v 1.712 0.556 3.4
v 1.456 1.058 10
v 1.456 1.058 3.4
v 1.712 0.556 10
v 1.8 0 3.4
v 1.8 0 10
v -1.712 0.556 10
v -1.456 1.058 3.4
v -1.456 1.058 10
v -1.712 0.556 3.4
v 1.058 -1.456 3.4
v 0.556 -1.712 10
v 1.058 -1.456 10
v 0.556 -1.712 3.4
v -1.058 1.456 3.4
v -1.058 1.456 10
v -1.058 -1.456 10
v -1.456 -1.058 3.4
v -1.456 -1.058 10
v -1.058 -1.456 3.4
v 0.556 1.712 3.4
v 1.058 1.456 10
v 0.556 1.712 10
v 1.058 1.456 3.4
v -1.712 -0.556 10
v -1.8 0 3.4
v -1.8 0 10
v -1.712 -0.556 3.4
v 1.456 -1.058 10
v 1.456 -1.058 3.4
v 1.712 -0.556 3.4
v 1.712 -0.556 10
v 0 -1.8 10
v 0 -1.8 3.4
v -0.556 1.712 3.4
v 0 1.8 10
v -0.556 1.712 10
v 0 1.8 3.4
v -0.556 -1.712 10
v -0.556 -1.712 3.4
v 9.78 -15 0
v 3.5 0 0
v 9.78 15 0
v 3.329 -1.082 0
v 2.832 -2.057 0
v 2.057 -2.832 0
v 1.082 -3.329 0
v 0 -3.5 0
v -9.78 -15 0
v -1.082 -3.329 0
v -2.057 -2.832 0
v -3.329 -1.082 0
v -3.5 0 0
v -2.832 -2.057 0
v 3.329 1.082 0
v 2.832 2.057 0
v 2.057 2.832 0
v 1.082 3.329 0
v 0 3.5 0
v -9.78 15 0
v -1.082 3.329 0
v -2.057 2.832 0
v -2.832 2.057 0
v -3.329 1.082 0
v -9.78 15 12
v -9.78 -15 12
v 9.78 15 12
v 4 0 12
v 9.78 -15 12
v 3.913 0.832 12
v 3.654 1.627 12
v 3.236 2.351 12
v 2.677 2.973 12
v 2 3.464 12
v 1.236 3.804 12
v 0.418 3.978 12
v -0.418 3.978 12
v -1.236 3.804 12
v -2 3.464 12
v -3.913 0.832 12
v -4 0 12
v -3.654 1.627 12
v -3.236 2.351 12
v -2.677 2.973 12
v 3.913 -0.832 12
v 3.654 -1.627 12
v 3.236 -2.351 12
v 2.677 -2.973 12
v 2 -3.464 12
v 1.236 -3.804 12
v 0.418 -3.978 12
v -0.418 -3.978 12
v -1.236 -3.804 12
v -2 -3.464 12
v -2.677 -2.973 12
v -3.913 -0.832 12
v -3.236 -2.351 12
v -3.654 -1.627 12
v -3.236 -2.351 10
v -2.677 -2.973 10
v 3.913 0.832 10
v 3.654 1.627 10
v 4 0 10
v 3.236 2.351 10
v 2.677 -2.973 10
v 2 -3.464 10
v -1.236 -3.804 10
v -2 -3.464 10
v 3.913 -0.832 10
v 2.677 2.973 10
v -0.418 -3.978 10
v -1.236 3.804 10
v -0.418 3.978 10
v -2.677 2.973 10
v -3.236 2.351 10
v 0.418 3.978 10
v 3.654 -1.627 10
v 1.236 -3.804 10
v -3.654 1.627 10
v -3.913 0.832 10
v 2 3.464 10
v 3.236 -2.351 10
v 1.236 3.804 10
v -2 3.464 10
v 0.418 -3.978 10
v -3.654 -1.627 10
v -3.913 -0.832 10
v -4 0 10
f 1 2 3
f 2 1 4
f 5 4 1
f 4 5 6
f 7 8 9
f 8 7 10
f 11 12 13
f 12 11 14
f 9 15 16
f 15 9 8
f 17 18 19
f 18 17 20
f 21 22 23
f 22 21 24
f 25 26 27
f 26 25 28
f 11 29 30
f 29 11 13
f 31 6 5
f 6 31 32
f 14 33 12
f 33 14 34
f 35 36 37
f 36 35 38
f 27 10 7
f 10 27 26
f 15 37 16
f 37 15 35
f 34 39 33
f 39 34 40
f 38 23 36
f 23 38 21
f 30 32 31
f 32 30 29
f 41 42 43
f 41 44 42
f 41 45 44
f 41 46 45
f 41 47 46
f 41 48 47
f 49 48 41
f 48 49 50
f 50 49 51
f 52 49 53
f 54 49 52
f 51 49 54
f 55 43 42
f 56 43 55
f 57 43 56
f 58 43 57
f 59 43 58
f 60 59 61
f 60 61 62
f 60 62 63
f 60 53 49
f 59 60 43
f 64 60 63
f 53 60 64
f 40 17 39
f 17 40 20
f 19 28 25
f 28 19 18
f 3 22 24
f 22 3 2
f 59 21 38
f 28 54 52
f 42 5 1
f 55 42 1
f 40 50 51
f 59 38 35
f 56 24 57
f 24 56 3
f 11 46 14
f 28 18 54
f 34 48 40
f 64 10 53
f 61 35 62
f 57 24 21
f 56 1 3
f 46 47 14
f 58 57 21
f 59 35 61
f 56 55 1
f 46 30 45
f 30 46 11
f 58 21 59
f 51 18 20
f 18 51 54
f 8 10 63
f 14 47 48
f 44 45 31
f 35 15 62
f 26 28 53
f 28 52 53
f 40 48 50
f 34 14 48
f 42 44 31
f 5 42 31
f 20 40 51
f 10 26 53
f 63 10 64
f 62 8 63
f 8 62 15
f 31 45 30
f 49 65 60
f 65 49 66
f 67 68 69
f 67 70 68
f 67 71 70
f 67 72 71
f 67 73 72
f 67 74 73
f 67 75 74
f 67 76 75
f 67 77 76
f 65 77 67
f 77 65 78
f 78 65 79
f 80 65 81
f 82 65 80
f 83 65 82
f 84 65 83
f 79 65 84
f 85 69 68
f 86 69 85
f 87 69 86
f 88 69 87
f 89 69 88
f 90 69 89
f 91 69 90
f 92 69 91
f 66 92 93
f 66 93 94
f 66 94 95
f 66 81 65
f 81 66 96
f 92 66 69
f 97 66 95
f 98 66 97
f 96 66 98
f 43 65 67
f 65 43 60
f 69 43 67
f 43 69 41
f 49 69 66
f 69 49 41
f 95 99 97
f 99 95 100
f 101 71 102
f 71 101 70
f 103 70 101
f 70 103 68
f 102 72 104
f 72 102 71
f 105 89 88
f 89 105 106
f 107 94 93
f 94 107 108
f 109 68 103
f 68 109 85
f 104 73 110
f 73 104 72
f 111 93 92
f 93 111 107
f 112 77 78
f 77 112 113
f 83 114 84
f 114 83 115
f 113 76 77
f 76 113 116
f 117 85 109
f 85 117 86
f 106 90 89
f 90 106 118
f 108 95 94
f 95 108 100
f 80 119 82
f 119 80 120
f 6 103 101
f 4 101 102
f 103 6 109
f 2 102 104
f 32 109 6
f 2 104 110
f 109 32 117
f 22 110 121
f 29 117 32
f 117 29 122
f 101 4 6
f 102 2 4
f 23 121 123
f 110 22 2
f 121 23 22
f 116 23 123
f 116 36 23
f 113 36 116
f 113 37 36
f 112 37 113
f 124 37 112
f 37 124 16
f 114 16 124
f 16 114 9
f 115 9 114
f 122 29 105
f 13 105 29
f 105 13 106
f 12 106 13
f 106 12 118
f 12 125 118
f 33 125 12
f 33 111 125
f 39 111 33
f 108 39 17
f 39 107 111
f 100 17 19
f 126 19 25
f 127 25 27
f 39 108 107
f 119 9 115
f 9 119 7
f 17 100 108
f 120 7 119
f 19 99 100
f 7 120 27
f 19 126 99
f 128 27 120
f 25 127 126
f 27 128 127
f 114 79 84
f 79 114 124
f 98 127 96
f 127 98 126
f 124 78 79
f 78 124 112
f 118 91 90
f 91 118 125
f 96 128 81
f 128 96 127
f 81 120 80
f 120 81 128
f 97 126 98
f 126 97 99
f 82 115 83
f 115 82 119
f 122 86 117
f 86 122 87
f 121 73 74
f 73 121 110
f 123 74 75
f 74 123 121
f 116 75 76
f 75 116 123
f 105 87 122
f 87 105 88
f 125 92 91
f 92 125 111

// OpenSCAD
module screw_hole() {
    large = 100;
    cylinder(h=large, d=3.6, $fn=20);
    cylinder(h=3.4, d1=7, d2=3.6, $fn=20);
}

h = 12;

difference() {
    linear_extrude(h) square([9.78*2,30], center=true);
    screw_hole();
    
    translate([0,0,h-2]) cylinder(h=100, d=8, $fn=30);
}
